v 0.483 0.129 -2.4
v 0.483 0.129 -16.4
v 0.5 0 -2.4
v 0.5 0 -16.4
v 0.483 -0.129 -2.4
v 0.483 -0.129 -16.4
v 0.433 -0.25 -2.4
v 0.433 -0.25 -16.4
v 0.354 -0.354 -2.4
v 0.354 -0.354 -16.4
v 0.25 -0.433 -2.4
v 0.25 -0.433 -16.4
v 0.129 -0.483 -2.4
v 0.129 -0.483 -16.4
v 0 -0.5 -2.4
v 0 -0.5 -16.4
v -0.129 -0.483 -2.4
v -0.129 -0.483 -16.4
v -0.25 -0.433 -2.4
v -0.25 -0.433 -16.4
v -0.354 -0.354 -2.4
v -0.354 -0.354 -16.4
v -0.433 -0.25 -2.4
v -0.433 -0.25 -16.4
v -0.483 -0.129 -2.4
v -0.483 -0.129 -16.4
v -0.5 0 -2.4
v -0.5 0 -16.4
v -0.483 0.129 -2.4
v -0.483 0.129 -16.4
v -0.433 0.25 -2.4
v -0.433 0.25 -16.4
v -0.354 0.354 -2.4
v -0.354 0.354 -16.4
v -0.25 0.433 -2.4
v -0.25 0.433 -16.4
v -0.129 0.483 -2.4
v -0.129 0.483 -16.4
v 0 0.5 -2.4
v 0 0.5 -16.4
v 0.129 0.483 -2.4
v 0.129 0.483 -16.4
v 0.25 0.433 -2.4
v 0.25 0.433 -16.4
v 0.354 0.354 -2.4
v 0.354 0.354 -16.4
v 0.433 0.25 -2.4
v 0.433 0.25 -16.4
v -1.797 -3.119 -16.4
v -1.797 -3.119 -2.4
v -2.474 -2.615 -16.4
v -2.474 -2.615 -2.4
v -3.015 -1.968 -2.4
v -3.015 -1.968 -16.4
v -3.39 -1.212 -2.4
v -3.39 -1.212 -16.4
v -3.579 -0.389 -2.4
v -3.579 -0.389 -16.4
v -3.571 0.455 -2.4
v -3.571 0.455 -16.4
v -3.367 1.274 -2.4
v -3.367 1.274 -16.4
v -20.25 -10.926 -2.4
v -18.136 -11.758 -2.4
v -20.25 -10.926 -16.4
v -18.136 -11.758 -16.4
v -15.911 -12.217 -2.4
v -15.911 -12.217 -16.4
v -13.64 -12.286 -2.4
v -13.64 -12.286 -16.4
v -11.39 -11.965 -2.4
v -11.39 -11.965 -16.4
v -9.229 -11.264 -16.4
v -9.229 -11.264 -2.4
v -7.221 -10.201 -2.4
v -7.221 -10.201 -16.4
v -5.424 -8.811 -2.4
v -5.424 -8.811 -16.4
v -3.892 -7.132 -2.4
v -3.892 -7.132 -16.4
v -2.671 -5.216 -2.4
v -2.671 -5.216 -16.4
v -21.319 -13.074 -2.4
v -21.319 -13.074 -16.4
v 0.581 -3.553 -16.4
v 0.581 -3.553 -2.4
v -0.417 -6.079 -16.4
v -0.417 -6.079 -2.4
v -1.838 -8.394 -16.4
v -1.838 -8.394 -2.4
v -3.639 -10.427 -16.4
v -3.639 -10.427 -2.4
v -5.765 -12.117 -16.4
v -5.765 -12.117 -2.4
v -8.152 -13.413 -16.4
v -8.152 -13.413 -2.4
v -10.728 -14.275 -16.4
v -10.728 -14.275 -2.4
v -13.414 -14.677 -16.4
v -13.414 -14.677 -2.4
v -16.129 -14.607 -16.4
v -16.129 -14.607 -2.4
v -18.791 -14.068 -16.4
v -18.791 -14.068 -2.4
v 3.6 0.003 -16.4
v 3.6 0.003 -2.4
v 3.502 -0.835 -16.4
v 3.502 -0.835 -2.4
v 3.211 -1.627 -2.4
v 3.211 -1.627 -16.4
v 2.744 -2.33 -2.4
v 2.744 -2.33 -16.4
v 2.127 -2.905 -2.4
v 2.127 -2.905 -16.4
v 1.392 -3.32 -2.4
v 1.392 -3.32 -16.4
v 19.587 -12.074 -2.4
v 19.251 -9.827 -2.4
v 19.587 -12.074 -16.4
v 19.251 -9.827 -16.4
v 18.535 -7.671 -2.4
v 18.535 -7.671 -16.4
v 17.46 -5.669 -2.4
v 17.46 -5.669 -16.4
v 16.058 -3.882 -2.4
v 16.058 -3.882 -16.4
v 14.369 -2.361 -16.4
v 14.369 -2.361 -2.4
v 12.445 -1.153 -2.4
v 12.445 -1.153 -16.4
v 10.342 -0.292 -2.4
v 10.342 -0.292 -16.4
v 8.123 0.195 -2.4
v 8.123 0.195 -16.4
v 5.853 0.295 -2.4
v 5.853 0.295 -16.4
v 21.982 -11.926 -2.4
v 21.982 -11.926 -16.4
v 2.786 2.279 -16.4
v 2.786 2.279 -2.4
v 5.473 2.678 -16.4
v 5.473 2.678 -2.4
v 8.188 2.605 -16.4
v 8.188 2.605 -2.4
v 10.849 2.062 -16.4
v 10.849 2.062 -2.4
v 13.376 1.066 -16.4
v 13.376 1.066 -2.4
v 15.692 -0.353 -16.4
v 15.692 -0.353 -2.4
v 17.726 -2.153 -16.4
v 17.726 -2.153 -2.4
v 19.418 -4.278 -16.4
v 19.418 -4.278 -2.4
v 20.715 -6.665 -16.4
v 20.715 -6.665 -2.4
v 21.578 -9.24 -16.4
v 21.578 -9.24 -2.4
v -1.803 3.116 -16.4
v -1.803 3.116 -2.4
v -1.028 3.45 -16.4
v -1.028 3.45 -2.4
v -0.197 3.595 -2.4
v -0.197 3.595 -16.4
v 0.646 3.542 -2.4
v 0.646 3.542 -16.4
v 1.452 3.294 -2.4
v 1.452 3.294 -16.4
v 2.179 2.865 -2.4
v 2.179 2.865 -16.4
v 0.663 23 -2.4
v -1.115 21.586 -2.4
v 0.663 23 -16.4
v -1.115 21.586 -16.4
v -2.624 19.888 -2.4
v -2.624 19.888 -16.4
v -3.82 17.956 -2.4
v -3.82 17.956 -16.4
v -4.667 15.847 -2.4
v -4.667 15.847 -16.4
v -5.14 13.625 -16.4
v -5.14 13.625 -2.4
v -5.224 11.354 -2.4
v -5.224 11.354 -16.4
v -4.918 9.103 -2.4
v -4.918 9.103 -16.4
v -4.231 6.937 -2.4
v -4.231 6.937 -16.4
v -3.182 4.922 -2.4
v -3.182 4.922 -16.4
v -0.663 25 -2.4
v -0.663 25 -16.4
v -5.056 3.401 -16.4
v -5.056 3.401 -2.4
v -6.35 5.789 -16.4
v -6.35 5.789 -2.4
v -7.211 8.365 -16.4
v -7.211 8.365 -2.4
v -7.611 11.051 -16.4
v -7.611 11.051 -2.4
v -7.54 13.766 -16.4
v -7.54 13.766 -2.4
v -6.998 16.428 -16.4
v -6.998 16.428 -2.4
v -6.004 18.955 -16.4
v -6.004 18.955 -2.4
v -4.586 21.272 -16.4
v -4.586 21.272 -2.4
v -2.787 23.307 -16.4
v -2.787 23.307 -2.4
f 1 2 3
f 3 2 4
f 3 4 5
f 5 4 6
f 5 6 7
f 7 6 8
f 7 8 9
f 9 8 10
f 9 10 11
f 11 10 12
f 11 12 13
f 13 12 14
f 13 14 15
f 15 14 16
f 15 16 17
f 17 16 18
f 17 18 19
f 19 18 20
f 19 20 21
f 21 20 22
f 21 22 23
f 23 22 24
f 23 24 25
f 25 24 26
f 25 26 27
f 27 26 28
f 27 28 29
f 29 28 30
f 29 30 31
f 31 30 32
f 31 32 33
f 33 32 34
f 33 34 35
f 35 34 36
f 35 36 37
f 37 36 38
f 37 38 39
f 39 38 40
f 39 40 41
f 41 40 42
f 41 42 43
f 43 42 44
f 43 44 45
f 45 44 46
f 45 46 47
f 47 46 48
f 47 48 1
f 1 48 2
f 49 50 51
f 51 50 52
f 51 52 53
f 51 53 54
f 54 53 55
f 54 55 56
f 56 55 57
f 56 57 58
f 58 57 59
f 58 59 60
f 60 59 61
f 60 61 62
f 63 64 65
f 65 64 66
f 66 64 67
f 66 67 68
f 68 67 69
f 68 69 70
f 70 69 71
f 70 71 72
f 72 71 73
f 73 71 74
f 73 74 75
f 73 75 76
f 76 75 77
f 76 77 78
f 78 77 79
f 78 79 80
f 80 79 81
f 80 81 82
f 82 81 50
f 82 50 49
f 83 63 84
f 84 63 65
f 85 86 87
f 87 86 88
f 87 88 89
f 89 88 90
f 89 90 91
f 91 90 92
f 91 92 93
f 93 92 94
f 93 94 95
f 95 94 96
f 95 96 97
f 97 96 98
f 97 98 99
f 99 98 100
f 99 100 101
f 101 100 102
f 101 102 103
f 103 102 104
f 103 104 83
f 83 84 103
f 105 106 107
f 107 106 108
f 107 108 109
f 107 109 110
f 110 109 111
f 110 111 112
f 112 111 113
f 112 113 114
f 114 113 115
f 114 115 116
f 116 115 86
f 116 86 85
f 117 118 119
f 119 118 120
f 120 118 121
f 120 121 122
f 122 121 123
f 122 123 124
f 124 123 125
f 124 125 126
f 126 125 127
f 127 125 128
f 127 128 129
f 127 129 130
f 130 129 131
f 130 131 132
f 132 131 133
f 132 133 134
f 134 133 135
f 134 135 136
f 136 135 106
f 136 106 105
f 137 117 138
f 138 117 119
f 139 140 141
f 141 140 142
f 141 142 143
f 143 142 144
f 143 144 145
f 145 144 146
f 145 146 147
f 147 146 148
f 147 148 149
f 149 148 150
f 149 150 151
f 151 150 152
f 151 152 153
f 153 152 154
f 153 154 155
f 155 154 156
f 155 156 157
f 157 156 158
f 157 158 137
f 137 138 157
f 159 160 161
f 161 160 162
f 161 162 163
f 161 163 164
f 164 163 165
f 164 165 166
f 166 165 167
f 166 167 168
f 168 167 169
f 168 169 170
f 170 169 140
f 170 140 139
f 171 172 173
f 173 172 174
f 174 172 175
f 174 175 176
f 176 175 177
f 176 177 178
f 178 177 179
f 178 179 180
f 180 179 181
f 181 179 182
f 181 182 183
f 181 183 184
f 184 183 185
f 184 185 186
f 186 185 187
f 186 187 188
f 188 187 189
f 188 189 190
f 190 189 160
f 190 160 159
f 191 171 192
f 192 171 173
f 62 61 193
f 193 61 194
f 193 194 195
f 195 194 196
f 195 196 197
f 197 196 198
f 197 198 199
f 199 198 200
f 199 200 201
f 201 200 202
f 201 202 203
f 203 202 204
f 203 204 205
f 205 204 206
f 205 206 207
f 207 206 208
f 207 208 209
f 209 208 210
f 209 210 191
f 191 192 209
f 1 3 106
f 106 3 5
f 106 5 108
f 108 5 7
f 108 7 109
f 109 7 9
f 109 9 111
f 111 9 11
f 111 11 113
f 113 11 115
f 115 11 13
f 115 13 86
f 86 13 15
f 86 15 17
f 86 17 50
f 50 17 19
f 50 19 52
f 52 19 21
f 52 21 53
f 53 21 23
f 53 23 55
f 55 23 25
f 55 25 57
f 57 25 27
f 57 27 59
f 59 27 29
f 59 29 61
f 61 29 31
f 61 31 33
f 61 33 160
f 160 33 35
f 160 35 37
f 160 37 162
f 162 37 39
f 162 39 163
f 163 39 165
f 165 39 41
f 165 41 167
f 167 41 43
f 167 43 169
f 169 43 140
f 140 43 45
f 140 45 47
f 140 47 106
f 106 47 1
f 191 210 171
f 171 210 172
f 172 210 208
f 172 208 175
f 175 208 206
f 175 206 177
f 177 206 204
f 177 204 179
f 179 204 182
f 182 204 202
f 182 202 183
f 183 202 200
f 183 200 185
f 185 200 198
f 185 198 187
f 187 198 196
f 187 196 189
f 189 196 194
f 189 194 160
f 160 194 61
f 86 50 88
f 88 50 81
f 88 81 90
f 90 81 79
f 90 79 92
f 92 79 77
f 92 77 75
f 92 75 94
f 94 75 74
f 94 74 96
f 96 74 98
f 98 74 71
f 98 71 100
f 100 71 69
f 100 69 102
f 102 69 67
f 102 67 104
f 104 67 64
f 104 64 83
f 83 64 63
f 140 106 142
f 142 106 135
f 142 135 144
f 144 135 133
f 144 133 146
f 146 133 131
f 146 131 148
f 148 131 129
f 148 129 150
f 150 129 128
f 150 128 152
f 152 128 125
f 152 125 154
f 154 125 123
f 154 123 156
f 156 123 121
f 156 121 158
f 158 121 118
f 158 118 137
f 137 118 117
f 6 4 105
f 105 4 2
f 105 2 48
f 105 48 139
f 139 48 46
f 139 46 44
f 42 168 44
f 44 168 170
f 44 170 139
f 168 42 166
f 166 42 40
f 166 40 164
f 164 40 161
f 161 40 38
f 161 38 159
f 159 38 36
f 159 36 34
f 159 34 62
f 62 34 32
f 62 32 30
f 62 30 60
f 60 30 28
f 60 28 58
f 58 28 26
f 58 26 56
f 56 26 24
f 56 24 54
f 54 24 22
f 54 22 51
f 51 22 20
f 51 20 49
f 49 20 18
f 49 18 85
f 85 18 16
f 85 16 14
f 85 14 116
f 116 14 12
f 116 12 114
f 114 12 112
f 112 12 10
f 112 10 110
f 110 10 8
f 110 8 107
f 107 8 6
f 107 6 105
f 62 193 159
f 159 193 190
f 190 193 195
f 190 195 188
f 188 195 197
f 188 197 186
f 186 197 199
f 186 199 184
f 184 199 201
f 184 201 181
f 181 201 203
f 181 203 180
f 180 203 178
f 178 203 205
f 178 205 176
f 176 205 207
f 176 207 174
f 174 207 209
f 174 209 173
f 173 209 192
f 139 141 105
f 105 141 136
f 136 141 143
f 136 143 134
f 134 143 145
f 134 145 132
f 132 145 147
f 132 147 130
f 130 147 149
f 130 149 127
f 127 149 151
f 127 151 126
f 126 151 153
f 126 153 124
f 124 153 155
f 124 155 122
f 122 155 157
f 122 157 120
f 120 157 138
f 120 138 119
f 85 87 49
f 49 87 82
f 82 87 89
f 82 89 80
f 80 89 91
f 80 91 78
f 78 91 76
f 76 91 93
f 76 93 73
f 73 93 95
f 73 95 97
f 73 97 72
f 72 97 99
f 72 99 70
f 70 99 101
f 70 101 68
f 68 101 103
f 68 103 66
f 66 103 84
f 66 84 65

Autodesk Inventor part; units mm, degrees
ref_plane "YZ Plane" through (0, 0, 0) normal (1, 0, 0) x (0, 1, 0)
ref_plane "XZ Plane" through (0, 0, 0) normal (0, 1, 0) x (-1, 0, 0)
ref_plane "XY Plane" through (0, 0, 0) normal (0, 0, 1) x (1, 0, 0)
ref_plane "Work Plane4" through (21.2718, 3.7508, -2.4) normal (0, 0, -1) x (-1, 0, 0)
sketch "Sketch5" plane through (21.2718, 3.7508, -2.4) normal (0, 0, -1) x (-1, 0, 0)
  arc A0 (24.639, -2.4773) -> (21.9352, 21.2492) centre (13.3117, 8.2492) ccw
  arc A1 (23.0748, -0.6348) -> (20.6085, 19.2492) centre (13.3118, 8.2492) ccw
  arc A2 (23.0687, -6.8701) -> (24.639, -2.4773) centre (21.2719, -3.7507) ccw
  arc A3 (23.0687, -6.8701) -> (41.5221, -14.6763) centre (35.6441, -2.8572) ccw
  line L0 (41.5221, -14.6763) -> (42.5908, -16.8253)
  arc A4 (20.691, -7.3035) -> (42.5908, -16.8253) centre (35.6441, -2.8572) ccw
  arc A5 (17.672, -3.7474) -> (20.691, -7.3035) centre (21.2719, -3.7507) ccw
  arc A6 (18.4854, -1.4715) -> (-0.7105, -15.6763) centre (14.8594, -16.6442) ccw
  arc A7 (23.0748, -0.6348) -> (18.4854, -1.4715) centre (21.2719, -3.7507) ccw
  arc A8 (17.672, -3.7474) -> (1.6849, -15.8253) centre (14.8595, -16.6443) ccw
  line L1 (1.6849, -15.8253) -> (-0.7105, -15.6763)
  line L2 (20.6085, 19.2492) -> (21.9352, 21.2492)
  point P0 (21.2718, -3.7508)
  dimension "d11" = 3.5999
  dimension "d13" = 13.2001
  dimension "d14" = 15.6002
  dimension "d15" = 13.2
  dimension "d16" = 15.5999
  dimension "d17" = 13.2001
  dimension "d18" = 15.6001
extrude "Extrusion2" add sketch "Sketch5" along normal blind 14
sketch "Sketch6" plane through (21.2718, 3.7508, -2.4) normal (0, 0, 1) x (1, 0, 0)
  circle A0 centre (-21.2718, -3.7508) radius 1.5
  dimension "d21" = 3
hole "Hole1" at (0, 0, -2.4) direction (0, 0, -1) diameter 1 depth 14 tip angle 118
properties part number "pump_impeller_rev_2"
